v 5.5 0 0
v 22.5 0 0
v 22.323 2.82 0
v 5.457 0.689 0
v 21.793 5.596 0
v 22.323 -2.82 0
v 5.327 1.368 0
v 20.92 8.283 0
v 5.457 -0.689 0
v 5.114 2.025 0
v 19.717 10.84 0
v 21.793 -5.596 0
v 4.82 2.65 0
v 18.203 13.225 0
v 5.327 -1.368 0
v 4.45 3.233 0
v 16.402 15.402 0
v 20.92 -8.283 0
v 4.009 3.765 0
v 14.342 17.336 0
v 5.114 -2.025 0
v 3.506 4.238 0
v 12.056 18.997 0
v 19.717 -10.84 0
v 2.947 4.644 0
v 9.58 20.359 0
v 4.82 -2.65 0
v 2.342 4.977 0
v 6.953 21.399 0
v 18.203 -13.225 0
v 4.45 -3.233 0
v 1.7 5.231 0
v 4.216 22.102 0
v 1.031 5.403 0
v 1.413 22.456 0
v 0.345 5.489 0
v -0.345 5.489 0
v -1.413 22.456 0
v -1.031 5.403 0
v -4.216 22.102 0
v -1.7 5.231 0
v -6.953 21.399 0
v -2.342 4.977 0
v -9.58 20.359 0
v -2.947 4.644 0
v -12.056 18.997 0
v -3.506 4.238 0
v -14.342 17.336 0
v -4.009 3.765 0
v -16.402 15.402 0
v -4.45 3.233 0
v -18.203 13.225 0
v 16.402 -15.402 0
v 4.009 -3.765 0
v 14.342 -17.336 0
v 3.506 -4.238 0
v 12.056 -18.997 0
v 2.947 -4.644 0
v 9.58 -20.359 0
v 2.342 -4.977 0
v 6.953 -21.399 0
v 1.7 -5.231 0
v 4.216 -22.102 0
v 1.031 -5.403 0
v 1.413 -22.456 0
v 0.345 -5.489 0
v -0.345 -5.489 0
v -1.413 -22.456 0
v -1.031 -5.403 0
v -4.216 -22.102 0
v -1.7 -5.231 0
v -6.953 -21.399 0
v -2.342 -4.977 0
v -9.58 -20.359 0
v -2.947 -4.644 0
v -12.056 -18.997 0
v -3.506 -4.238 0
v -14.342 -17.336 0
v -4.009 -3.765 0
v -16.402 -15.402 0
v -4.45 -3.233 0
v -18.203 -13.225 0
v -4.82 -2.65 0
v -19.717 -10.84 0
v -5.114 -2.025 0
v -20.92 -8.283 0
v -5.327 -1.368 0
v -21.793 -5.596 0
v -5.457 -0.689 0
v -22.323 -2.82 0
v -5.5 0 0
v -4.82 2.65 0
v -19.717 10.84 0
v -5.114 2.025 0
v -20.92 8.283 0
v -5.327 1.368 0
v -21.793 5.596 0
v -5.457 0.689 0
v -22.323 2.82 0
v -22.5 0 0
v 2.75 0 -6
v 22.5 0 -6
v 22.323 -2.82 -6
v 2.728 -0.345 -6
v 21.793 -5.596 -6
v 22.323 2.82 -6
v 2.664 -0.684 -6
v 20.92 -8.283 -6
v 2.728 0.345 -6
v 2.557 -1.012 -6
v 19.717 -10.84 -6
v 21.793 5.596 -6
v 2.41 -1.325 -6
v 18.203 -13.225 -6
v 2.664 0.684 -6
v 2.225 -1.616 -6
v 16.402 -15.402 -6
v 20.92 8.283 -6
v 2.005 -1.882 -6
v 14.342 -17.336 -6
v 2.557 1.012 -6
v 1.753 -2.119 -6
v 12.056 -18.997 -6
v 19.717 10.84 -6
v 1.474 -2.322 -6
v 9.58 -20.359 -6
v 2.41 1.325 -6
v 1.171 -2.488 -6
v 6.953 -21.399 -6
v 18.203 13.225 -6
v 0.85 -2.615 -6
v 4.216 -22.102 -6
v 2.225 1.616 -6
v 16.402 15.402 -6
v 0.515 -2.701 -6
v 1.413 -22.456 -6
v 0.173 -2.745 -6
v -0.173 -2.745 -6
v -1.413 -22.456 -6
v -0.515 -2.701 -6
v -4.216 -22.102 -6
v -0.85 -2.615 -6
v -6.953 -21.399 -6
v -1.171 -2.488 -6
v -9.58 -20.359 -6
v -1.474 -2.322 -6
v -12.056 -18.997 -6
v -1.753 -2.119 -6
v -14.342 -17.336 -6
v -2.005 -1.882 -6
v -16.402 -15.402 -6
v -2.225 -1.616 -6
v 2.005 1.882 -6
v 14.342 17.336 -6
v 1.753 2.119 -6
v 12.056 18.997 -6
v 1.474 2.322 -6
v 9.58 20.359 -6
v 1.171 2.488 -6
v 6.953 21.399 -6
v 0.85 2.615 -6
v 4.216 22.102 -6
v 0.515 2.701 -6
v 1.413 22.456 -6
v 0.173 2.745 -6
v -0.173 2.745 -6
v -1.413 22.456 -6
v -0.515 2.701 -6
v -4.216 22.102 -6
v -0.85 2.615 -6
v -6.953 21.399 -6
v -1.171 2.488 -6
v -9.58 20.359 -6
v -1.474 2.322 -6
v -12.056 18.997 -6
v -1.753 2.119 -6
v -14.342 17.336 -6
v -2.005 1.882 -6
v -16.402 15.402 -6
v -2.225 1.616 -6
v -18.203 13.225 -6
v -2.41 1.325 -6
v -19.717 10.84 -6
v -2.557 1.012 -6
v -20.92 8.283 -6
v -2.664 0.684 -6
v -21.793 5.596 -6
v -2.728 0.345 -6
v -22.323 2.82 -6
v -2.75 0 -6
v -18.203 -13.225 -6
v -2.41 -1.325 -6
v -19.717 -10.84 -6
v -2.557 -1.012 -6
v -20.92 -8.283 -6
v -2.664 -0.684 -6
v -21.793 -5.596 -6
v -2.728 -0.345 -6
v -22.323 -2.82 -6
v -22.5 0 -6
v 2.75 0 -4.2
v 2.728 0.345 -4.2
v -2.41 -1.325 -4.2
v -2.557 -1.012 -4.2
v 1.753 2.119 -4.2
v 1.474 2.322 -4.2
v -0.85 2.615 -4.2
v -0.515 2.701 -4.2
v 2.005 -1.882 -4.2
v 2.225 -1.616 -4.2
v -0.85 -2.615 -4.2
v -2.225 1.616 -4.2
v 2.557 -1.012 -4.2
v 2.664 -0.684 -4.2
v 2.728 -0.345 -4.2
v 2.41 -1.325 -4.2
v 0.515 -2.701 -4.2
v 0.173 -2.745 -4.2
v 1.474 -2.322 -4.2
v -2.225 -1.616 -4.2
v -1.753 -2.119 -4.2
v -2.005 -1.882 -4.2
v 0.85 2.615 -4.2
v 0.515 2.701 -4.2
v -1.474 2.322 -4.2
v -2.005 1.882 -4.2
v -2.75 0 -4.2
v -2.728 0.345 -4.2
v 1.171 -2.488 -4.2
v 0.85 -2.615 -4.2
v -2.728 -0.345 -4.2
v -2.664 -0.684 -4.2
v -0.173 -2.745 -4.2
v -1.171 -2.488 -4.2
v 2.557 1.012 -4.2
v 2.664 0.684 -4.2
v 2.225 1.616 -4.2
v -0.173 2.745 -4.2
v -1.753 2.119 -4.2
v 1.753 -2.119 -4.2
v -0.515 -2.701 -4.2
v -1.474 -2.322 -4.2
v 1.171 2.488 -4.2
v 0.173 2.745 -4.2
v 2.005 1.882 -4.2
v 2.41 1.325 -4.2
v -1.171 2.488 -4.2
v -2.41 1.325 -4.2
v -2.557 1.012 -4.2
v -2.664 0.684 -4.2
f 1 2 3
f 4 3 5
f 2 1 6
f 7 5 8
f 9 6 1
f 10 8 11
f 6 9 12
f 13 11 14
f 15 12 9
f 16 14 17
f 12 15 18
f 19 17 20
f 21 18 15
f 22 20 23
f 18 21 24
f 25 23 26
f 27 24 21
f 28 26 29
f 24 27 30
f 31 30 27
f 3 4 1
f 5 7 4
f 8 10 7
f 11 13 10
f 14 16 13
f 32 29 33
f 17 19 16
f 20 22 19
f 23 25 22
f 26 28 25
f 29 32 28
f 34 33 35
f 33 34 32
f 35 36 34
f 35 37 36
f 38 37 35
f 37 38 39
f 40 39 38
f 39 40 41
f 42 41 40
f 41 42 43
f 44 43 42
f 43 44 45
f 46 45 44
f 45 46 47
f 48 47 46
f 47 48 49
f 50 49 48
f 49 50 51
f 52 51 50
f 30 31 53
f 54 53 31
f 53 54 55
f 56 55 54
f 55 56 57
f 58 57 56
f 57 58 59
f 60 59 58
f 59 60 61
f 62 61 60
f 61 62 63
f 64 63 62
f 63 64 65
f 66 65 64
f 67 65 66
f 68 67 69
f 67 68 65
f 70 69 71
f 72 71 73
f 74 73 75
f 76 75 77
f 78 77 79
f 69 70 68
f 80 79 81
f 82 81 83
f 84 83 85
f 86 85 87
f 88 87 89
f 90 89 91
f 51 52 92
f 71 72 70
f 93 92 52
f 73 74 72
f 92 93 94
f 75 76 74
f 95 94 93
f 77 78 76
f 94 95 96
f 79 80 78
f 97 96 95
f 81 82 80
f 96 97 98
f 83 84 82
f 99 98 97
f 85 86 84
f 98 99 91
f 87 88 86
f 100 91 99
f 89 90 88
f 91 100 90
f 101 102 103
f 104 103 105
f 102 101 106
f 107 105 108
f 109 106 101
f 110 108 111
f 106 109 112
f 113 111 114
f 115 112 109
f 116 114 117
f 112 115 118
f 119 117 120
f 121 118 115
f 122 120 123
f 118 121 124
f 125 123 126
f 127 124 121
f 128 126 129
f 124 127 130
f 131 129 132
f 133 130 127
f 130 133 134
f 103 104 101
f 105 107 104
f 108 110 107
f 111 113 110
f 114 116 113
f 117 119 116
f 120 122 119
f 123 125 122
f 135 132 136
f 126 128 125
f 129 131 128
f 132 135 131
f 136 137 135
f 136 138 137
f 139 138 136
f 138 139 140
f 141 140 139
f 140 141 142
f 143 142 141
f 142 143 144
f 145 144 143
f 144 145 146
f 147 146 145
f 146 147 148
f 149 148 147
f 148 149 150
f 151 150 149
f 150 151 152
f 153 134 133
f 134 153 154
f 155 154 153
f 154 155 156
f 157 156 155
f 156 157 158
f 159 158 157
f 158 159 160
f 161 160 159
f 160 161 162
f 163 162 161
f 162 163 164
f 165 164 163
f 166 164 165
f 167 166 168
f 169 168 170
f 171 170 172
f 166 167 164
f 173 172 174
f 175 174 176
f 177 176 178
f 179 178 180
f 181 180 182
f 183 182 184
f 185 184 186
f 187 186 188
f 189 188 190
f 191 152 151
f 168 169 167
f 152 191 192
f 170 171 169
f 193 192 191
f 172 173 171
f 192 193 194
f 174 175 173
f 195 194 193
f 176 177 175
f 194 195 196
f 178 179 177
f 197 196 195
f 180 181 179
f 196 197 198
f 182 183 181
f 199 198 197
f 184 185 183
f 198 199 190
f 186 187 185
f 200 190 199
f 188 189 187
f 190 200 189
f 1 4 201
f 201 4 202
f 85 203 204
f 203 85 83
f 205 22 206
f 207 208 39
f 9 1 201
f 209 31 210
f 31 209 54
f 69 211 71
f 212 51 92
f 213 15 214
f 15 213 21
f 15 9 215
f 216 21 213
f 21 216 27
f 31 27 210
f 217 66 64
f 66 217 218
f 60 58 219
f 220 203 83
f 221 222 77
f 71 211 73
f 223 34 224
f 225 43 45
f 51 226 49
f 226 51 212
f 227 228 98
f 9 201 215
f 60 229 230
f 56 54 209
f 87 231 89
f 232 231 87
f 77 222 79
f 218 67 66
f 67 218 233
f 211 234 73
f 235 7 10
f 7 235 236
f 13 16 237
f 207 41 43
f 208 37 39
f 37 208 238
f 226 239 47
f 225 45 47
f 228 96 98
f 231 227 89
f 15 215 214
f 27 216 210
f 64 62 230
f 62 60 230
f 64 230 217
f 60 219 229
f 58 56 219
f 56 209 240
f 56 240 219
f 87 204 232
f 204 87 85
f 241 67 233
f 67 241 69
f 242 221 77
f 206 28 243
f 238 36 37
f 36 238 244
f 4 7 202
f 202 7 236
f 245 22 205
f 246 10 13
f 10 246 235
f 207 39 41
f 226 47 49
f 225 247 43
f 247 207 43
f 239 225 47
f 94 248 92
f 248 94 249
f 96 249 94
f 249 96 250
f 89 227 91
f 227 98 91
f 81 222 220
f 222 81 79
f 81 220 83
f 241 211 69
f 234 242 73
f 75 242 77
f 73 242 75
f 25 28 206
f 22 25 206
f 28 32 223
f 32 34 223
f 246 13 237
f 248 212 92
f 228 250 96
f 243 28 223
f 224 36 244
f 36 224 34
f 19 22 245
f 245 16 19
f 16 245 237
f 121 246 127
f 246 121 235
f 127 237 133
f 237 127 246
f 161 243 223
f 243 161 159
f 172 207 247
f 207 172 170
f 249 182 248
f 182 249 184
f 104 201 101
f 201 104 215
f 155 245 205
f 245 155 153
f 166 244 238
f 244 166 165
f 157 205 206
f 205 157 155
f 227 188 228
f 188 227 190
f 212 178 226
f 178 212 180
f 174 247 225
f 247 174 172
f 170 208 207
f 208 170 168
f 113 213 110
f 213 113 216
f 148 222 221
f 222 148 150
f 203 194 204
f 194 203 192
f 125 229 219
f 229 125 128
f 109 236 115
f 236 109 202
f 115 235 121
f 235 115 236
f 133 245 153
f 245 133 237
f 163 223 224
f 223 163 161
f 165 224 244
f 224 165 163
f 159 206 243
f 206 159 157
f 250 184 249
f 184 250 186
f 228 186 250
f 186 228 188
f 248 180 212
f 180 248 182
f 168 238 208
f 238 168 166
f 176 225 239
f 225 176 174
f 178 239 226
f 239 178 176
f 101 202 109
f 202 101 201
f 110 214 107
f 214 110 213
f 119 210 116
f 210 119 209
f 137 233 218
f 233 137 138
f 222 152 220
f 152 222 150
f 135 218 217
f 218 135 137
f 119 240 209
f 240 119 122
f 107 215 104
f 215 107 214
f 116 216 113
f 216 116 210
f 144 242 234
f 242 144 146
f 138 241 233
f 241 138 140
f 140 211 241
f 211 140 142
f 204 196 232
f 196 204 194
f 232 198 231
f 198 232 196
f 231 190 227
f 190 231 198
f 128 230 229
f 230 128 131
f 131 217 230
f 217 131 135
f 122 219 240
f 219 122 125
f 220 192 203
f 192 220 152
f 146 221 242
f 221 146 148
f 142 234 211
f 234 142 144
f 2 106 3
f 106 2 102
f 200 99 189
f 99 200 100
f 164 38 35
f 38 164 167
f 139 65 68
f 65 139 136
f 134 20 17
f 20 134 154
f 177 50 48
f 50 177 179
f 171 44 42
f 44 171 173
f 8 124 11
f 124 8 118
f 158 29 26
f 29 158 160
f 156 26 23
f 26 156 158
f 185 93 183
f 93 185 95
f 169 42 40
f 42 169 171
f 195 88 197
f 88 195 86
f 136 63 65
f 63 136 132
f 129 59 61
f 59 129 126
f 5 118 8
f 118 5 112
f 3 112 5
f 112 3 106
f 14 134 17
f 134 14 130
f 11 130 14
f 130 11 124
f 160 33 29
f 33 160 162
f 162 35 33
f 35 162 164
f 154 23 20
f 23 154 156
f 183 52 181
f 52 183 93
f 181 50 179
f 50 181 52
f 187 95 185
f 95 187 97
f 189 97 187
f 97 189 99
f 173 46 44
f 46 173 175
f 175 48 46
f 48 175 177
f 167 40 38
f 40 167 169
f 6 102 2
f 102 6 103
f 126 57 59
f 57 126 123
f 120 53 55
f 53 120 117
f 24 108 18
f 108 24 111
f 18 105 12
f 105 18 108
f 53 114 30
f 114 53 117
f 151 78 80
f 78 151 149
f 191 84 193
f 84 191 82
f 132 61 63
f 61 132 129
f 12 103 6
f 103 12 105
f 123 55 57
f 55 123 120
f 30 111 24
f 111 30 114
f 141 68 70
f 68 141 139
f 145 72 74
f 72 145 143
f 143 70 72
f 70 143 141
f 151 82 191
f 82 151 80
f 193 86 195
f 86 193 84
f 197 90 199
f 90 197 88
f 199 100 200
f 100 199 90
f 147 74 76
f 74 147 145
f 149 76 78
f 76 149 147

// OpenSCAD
$fn = 50;


difference() {
	union() {
		translate(v = [0, 0, -6.0000000000]) {
			cylinder(h = 6, r = 22.5000000000);
		}
	}
	union() {
		translate(v = [0, 0, 0]) {
			rotate(a = [0, 0, 0]) {
				difference() {
					union() {
						translate(v = [0, 0, -6.0000000000]) {
							cylinder(h = 6, r = 2.2500000000);
						}
						translate(v = [0, 0, -4.2000000000]) {
							cylinder(h = 4.2000000000, r1 = 2.7500000000, r2 = 5.5000000000);
						}
						translate(v = [0, 0, -6.0000000000]) {
							cylinder(h = 6, r = 2.7500000000);
						}
						translate(v = [0, 0, -6.0000000000]) {
							cylinder(h = 6, r = 2.2500000000);
						}
					}
					union();
				}
			}
		}
	}
}
